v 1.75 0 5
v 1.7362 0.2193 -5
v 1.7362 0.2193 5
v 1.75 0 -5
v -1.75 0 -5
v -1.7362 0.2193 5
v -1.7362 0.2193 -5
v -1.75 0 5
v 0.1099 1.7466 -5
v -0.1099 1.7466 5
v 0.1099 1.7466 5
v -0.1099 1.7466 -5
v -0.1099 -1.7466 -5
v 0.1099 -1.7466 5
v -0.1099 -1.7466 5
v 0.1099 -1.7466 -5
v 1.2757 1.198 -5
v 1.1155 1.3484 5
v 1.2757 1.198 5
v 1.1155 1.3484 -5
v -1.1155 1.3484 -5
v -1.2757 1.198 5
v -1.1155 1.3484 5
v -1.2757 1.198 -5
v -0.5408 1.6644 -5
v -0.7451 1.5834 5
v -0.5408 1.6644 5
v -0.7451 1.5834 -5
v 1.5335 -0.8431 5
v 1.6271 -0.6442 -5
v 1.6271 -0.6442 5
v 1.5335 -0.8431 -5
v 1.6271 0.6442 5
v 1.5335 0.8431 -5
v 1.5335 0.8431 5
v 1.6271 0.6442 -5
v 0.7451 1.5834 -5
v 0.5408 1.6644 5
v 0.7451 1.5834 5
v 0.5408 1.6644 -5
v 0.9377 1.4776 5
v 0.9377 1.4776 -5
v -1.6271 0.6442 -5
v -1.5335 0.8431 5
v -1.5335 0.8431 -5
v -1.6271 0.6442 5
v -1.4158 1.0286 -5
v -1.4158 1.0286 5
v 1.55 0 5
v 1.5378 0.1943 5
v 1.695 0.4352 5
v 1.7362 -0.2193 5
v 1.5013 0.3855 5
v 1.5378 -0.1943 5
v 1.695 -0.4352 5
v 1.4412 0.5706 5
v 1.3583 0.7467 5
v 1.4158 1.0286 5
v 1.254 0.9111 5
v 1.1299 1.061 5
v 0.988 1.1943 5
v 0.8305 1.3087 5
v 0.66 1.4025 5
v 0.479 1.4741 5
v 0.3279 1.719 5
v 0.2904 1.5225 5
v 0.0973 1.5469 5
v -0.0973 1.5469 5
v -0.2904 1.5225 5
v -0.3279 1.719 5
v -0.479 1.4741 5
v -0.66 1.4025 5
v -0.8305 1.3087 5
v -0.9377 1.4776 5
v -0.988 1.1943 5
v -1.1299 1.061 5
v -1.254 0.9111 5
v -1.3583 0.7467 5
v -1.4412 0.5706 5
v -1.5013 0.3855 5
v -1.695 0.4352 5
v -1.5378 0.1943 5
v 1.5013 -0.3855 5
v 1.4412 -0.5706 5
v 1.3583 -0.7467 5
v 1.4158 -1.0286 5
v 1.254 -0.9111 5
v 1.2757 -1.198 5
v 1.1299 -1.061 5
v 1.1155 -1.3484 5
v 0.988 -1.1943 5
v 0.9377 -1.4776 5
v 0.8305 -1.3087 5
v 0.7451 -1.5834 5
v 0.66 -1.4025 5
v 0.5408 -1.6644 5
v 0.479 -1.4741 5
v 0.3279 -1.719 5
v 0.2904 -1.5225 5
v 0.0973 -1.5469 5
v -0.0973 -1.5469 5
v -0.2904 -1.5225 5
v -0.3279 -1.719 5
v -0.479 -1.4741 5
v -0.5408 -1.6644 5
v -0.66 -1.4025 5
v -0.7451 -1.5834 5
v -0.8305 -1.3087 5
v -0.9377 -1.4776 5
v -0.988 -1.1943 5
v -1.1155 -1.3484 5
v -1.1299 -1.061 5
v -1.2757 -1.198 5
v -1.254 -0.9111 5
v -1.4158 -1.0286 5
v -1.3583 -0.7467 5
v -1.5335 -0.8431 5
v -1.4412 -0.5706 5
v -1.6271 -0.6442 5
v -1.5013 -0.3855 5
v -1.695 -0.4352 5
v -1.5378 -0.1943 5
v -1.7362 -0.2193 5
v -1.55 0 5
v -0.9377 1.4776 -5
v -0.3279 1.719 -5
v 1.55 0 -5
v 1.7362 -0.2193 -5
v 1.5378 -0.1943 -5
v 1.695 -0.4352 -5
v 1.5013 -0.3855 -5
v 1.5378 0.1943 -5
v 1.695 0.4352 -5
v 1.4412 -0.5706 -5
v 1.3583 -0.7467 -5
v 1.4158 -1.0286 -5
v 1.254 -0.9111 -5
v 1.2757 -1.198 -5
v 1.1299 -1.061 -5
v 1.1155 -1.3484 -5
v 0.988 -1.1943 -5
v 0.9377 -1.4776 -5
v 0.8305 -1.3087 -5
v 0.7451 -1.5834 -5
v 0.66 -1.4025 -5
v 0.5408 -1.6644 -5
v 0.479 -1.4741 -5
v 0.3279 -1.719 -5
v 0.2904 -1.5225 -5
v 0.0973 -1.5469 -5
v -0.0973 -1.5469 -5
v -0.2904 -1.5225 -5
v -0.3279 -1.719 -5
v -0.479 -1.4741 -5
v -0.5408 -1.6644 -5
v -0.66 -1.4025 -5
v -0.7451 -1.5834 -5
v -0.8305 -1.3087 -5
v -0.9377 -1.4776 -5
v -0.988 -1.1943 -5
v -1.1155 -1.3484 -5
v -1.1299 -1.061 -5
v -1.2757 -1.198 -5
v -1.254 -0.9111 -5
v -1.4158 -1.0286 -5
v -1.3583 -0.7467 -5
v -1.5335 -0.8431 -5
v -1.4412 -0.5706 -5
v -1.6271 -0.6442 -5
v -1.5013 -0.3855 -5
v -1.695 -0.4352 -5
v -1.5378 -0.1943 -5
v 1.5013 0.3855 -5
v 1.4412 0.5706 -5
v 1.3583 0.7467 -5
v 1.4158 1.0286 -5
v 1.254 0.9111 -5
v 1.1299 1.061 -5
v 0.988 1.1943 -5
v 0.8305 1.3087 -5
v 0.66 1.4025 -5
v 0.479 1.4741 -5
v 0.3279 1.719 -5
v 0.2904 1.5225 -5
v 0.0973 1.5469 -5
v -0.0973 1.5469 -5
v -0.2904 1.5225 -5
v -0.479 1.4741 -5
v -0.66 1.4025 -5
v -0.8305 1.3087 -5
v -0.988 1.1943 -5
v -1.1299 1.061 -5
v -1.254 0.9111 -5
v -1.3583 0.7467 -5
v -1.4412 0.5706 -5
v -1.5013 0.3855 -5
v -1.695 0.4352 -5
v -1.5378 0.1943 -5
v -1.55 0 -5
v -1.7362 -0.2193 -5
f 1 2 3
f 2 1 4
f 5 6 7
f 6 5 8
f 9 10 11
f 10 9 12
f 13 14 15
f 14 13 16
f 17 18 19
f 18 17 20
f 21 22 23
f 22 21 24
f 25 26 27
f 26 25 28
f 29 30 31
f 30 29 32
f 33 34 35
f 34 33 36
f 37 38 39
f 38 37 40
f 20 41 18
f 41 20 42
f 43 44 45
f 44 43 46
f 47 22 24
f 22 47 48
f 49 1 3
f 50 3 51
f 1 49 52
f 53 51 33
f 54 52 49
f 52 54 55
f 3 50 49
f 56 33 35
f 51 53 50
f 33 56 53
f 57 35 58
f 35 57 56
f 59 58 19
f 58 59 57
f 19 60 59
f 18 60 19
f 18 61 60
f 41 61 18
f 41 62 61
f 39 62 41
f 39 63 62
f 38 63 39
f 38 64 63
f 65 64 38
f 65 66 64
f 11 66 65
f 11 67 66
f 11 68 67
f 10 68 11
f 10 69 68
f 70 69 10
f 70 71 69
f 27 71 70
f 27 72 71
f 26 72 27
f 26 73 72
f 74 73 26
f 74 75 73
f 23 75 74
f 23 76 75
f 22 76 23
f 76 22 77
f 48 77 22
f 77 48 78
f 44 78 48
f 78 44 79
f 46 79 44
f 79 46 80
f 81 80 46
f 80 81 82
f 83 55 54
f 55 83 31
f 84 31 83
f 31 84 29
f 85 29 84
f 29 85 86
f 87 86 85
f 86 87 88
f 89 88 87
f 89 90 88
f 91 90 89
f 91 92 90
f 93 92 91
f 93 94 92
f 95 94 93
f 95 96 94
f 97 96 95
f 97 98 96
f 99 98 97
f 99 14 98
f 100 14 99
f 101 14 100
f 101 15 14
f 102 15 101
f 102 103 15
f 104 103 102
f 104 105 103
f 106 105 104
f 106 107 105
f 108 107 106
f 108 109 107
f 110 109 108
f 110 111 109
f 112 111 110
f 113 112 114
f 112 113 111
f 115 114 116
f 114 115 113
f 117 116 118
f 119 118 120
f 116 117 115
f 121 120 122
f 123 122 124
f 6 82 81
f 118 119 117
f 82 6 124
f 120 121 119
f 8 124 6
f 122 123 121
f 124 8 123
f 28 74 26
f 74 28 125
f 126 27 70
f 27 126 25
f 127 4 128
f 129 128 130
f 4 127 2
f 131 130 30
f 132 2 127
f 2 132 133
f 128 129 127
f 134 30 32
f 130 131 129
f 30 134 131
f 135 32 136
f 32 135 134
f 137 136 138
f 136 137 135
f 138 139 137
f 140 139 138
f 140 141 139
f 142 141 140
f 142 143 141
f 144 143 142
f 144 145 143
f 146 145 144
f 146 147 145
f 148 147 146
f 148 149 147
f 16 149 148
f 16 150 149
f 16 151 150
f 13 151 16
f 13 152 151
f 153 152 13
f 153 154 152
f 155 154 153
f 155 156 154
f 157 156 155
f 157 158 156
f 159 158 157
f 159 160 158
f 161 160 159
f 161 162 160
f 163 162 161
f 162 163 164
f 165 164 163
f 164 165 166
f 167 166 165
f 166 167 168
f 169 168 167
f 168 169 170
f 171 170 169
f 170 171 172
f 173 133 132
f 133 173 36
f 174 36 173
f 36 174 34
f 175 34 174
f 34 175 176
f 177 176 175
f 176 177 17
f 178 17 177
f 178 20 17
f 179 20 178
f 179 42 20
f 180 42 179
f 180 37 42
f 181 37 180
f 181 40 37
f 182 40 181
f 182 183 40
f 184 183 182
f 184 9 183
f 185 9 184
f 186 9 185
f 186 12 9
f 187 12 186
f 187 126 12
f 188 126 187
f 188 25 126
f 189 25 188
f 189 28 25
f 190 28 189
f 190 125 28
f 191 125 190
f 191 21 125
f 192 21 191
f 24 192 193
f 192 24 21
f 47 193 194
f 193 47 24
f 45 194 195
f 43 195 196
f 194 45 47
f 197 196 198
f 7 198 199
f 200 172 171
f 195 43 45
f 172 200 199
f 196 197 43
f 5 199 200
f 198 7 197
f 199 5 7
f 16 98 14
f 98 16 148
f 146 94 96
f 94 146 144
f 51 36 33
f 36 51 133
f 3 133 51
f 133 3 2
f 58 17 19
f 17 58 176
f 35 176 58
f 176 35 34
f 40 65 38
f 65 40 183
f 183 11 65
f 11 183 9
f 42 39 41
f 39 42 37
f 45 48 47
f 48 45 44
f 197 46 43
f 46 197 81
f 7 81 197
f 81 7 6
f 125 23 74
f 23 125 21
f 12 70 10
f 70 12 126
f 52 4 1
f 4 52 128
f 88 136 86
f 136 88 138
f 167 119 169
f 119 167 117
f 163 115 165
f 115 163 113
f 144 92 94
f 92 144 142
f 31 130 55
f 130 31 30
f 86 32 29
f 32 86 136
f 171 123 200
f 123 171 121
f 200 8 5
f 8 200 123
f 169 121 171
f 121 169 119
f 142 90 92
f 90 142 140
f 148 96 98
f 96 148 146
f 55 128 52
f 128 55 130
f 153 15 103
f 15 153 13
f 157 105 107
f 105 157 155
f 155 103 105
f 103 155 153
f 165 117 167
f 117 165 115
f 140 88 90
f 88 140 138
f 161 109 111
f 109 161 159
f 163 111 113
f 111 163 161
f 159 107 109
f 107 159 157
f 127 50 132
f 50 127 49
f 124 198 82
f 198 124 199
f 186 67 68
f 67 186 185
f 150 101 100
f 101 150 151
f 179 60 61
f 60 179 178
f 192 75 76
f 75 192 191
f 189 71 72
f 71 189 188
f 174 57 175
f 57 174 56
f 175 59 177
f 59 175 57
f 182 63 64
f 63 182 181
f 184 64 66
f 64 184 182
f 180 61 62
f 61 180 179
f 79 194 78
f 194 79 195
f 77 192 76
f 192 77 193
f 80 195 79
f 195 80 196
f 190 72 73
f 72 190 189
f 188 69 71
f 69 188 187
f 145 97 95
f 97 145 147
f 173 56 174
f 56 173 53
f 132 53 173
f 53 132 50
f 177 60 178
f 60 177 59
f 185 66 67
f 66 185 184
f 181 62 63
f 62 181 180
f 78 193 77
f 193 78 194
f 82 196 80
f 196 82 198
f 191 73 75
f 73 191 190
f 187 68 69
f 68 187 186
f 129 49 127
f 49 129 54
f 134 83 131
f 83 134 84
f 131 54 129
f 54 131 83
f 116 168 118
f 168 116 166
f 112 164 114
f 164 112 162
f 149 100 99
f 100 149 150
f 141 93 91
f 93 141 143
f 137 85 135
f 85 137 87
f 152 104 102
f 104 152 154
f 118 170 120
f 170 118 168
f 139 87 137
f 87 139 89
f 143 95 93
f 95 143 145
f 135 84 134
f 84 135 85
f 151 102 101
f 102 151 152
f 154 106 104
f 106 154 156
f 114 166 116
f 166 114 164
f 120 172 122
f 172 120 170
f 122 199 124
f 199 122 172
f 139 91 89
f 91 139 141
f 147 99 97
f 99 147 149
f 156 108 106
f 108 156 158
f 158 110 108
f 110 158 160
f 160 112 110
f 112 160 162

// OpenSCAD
$fn = 50;


difference() {
	union() {
		translate(v = [0, 0, -5.0000000000]) {
			cylinder(h = 10, r = 1.7500000000);
		}
	}
	union() {
		translate(v = [0, 0, -100.0000000000]) {
			cylinder(h = 200, r = 1.5500000000);
		}
	}
}
